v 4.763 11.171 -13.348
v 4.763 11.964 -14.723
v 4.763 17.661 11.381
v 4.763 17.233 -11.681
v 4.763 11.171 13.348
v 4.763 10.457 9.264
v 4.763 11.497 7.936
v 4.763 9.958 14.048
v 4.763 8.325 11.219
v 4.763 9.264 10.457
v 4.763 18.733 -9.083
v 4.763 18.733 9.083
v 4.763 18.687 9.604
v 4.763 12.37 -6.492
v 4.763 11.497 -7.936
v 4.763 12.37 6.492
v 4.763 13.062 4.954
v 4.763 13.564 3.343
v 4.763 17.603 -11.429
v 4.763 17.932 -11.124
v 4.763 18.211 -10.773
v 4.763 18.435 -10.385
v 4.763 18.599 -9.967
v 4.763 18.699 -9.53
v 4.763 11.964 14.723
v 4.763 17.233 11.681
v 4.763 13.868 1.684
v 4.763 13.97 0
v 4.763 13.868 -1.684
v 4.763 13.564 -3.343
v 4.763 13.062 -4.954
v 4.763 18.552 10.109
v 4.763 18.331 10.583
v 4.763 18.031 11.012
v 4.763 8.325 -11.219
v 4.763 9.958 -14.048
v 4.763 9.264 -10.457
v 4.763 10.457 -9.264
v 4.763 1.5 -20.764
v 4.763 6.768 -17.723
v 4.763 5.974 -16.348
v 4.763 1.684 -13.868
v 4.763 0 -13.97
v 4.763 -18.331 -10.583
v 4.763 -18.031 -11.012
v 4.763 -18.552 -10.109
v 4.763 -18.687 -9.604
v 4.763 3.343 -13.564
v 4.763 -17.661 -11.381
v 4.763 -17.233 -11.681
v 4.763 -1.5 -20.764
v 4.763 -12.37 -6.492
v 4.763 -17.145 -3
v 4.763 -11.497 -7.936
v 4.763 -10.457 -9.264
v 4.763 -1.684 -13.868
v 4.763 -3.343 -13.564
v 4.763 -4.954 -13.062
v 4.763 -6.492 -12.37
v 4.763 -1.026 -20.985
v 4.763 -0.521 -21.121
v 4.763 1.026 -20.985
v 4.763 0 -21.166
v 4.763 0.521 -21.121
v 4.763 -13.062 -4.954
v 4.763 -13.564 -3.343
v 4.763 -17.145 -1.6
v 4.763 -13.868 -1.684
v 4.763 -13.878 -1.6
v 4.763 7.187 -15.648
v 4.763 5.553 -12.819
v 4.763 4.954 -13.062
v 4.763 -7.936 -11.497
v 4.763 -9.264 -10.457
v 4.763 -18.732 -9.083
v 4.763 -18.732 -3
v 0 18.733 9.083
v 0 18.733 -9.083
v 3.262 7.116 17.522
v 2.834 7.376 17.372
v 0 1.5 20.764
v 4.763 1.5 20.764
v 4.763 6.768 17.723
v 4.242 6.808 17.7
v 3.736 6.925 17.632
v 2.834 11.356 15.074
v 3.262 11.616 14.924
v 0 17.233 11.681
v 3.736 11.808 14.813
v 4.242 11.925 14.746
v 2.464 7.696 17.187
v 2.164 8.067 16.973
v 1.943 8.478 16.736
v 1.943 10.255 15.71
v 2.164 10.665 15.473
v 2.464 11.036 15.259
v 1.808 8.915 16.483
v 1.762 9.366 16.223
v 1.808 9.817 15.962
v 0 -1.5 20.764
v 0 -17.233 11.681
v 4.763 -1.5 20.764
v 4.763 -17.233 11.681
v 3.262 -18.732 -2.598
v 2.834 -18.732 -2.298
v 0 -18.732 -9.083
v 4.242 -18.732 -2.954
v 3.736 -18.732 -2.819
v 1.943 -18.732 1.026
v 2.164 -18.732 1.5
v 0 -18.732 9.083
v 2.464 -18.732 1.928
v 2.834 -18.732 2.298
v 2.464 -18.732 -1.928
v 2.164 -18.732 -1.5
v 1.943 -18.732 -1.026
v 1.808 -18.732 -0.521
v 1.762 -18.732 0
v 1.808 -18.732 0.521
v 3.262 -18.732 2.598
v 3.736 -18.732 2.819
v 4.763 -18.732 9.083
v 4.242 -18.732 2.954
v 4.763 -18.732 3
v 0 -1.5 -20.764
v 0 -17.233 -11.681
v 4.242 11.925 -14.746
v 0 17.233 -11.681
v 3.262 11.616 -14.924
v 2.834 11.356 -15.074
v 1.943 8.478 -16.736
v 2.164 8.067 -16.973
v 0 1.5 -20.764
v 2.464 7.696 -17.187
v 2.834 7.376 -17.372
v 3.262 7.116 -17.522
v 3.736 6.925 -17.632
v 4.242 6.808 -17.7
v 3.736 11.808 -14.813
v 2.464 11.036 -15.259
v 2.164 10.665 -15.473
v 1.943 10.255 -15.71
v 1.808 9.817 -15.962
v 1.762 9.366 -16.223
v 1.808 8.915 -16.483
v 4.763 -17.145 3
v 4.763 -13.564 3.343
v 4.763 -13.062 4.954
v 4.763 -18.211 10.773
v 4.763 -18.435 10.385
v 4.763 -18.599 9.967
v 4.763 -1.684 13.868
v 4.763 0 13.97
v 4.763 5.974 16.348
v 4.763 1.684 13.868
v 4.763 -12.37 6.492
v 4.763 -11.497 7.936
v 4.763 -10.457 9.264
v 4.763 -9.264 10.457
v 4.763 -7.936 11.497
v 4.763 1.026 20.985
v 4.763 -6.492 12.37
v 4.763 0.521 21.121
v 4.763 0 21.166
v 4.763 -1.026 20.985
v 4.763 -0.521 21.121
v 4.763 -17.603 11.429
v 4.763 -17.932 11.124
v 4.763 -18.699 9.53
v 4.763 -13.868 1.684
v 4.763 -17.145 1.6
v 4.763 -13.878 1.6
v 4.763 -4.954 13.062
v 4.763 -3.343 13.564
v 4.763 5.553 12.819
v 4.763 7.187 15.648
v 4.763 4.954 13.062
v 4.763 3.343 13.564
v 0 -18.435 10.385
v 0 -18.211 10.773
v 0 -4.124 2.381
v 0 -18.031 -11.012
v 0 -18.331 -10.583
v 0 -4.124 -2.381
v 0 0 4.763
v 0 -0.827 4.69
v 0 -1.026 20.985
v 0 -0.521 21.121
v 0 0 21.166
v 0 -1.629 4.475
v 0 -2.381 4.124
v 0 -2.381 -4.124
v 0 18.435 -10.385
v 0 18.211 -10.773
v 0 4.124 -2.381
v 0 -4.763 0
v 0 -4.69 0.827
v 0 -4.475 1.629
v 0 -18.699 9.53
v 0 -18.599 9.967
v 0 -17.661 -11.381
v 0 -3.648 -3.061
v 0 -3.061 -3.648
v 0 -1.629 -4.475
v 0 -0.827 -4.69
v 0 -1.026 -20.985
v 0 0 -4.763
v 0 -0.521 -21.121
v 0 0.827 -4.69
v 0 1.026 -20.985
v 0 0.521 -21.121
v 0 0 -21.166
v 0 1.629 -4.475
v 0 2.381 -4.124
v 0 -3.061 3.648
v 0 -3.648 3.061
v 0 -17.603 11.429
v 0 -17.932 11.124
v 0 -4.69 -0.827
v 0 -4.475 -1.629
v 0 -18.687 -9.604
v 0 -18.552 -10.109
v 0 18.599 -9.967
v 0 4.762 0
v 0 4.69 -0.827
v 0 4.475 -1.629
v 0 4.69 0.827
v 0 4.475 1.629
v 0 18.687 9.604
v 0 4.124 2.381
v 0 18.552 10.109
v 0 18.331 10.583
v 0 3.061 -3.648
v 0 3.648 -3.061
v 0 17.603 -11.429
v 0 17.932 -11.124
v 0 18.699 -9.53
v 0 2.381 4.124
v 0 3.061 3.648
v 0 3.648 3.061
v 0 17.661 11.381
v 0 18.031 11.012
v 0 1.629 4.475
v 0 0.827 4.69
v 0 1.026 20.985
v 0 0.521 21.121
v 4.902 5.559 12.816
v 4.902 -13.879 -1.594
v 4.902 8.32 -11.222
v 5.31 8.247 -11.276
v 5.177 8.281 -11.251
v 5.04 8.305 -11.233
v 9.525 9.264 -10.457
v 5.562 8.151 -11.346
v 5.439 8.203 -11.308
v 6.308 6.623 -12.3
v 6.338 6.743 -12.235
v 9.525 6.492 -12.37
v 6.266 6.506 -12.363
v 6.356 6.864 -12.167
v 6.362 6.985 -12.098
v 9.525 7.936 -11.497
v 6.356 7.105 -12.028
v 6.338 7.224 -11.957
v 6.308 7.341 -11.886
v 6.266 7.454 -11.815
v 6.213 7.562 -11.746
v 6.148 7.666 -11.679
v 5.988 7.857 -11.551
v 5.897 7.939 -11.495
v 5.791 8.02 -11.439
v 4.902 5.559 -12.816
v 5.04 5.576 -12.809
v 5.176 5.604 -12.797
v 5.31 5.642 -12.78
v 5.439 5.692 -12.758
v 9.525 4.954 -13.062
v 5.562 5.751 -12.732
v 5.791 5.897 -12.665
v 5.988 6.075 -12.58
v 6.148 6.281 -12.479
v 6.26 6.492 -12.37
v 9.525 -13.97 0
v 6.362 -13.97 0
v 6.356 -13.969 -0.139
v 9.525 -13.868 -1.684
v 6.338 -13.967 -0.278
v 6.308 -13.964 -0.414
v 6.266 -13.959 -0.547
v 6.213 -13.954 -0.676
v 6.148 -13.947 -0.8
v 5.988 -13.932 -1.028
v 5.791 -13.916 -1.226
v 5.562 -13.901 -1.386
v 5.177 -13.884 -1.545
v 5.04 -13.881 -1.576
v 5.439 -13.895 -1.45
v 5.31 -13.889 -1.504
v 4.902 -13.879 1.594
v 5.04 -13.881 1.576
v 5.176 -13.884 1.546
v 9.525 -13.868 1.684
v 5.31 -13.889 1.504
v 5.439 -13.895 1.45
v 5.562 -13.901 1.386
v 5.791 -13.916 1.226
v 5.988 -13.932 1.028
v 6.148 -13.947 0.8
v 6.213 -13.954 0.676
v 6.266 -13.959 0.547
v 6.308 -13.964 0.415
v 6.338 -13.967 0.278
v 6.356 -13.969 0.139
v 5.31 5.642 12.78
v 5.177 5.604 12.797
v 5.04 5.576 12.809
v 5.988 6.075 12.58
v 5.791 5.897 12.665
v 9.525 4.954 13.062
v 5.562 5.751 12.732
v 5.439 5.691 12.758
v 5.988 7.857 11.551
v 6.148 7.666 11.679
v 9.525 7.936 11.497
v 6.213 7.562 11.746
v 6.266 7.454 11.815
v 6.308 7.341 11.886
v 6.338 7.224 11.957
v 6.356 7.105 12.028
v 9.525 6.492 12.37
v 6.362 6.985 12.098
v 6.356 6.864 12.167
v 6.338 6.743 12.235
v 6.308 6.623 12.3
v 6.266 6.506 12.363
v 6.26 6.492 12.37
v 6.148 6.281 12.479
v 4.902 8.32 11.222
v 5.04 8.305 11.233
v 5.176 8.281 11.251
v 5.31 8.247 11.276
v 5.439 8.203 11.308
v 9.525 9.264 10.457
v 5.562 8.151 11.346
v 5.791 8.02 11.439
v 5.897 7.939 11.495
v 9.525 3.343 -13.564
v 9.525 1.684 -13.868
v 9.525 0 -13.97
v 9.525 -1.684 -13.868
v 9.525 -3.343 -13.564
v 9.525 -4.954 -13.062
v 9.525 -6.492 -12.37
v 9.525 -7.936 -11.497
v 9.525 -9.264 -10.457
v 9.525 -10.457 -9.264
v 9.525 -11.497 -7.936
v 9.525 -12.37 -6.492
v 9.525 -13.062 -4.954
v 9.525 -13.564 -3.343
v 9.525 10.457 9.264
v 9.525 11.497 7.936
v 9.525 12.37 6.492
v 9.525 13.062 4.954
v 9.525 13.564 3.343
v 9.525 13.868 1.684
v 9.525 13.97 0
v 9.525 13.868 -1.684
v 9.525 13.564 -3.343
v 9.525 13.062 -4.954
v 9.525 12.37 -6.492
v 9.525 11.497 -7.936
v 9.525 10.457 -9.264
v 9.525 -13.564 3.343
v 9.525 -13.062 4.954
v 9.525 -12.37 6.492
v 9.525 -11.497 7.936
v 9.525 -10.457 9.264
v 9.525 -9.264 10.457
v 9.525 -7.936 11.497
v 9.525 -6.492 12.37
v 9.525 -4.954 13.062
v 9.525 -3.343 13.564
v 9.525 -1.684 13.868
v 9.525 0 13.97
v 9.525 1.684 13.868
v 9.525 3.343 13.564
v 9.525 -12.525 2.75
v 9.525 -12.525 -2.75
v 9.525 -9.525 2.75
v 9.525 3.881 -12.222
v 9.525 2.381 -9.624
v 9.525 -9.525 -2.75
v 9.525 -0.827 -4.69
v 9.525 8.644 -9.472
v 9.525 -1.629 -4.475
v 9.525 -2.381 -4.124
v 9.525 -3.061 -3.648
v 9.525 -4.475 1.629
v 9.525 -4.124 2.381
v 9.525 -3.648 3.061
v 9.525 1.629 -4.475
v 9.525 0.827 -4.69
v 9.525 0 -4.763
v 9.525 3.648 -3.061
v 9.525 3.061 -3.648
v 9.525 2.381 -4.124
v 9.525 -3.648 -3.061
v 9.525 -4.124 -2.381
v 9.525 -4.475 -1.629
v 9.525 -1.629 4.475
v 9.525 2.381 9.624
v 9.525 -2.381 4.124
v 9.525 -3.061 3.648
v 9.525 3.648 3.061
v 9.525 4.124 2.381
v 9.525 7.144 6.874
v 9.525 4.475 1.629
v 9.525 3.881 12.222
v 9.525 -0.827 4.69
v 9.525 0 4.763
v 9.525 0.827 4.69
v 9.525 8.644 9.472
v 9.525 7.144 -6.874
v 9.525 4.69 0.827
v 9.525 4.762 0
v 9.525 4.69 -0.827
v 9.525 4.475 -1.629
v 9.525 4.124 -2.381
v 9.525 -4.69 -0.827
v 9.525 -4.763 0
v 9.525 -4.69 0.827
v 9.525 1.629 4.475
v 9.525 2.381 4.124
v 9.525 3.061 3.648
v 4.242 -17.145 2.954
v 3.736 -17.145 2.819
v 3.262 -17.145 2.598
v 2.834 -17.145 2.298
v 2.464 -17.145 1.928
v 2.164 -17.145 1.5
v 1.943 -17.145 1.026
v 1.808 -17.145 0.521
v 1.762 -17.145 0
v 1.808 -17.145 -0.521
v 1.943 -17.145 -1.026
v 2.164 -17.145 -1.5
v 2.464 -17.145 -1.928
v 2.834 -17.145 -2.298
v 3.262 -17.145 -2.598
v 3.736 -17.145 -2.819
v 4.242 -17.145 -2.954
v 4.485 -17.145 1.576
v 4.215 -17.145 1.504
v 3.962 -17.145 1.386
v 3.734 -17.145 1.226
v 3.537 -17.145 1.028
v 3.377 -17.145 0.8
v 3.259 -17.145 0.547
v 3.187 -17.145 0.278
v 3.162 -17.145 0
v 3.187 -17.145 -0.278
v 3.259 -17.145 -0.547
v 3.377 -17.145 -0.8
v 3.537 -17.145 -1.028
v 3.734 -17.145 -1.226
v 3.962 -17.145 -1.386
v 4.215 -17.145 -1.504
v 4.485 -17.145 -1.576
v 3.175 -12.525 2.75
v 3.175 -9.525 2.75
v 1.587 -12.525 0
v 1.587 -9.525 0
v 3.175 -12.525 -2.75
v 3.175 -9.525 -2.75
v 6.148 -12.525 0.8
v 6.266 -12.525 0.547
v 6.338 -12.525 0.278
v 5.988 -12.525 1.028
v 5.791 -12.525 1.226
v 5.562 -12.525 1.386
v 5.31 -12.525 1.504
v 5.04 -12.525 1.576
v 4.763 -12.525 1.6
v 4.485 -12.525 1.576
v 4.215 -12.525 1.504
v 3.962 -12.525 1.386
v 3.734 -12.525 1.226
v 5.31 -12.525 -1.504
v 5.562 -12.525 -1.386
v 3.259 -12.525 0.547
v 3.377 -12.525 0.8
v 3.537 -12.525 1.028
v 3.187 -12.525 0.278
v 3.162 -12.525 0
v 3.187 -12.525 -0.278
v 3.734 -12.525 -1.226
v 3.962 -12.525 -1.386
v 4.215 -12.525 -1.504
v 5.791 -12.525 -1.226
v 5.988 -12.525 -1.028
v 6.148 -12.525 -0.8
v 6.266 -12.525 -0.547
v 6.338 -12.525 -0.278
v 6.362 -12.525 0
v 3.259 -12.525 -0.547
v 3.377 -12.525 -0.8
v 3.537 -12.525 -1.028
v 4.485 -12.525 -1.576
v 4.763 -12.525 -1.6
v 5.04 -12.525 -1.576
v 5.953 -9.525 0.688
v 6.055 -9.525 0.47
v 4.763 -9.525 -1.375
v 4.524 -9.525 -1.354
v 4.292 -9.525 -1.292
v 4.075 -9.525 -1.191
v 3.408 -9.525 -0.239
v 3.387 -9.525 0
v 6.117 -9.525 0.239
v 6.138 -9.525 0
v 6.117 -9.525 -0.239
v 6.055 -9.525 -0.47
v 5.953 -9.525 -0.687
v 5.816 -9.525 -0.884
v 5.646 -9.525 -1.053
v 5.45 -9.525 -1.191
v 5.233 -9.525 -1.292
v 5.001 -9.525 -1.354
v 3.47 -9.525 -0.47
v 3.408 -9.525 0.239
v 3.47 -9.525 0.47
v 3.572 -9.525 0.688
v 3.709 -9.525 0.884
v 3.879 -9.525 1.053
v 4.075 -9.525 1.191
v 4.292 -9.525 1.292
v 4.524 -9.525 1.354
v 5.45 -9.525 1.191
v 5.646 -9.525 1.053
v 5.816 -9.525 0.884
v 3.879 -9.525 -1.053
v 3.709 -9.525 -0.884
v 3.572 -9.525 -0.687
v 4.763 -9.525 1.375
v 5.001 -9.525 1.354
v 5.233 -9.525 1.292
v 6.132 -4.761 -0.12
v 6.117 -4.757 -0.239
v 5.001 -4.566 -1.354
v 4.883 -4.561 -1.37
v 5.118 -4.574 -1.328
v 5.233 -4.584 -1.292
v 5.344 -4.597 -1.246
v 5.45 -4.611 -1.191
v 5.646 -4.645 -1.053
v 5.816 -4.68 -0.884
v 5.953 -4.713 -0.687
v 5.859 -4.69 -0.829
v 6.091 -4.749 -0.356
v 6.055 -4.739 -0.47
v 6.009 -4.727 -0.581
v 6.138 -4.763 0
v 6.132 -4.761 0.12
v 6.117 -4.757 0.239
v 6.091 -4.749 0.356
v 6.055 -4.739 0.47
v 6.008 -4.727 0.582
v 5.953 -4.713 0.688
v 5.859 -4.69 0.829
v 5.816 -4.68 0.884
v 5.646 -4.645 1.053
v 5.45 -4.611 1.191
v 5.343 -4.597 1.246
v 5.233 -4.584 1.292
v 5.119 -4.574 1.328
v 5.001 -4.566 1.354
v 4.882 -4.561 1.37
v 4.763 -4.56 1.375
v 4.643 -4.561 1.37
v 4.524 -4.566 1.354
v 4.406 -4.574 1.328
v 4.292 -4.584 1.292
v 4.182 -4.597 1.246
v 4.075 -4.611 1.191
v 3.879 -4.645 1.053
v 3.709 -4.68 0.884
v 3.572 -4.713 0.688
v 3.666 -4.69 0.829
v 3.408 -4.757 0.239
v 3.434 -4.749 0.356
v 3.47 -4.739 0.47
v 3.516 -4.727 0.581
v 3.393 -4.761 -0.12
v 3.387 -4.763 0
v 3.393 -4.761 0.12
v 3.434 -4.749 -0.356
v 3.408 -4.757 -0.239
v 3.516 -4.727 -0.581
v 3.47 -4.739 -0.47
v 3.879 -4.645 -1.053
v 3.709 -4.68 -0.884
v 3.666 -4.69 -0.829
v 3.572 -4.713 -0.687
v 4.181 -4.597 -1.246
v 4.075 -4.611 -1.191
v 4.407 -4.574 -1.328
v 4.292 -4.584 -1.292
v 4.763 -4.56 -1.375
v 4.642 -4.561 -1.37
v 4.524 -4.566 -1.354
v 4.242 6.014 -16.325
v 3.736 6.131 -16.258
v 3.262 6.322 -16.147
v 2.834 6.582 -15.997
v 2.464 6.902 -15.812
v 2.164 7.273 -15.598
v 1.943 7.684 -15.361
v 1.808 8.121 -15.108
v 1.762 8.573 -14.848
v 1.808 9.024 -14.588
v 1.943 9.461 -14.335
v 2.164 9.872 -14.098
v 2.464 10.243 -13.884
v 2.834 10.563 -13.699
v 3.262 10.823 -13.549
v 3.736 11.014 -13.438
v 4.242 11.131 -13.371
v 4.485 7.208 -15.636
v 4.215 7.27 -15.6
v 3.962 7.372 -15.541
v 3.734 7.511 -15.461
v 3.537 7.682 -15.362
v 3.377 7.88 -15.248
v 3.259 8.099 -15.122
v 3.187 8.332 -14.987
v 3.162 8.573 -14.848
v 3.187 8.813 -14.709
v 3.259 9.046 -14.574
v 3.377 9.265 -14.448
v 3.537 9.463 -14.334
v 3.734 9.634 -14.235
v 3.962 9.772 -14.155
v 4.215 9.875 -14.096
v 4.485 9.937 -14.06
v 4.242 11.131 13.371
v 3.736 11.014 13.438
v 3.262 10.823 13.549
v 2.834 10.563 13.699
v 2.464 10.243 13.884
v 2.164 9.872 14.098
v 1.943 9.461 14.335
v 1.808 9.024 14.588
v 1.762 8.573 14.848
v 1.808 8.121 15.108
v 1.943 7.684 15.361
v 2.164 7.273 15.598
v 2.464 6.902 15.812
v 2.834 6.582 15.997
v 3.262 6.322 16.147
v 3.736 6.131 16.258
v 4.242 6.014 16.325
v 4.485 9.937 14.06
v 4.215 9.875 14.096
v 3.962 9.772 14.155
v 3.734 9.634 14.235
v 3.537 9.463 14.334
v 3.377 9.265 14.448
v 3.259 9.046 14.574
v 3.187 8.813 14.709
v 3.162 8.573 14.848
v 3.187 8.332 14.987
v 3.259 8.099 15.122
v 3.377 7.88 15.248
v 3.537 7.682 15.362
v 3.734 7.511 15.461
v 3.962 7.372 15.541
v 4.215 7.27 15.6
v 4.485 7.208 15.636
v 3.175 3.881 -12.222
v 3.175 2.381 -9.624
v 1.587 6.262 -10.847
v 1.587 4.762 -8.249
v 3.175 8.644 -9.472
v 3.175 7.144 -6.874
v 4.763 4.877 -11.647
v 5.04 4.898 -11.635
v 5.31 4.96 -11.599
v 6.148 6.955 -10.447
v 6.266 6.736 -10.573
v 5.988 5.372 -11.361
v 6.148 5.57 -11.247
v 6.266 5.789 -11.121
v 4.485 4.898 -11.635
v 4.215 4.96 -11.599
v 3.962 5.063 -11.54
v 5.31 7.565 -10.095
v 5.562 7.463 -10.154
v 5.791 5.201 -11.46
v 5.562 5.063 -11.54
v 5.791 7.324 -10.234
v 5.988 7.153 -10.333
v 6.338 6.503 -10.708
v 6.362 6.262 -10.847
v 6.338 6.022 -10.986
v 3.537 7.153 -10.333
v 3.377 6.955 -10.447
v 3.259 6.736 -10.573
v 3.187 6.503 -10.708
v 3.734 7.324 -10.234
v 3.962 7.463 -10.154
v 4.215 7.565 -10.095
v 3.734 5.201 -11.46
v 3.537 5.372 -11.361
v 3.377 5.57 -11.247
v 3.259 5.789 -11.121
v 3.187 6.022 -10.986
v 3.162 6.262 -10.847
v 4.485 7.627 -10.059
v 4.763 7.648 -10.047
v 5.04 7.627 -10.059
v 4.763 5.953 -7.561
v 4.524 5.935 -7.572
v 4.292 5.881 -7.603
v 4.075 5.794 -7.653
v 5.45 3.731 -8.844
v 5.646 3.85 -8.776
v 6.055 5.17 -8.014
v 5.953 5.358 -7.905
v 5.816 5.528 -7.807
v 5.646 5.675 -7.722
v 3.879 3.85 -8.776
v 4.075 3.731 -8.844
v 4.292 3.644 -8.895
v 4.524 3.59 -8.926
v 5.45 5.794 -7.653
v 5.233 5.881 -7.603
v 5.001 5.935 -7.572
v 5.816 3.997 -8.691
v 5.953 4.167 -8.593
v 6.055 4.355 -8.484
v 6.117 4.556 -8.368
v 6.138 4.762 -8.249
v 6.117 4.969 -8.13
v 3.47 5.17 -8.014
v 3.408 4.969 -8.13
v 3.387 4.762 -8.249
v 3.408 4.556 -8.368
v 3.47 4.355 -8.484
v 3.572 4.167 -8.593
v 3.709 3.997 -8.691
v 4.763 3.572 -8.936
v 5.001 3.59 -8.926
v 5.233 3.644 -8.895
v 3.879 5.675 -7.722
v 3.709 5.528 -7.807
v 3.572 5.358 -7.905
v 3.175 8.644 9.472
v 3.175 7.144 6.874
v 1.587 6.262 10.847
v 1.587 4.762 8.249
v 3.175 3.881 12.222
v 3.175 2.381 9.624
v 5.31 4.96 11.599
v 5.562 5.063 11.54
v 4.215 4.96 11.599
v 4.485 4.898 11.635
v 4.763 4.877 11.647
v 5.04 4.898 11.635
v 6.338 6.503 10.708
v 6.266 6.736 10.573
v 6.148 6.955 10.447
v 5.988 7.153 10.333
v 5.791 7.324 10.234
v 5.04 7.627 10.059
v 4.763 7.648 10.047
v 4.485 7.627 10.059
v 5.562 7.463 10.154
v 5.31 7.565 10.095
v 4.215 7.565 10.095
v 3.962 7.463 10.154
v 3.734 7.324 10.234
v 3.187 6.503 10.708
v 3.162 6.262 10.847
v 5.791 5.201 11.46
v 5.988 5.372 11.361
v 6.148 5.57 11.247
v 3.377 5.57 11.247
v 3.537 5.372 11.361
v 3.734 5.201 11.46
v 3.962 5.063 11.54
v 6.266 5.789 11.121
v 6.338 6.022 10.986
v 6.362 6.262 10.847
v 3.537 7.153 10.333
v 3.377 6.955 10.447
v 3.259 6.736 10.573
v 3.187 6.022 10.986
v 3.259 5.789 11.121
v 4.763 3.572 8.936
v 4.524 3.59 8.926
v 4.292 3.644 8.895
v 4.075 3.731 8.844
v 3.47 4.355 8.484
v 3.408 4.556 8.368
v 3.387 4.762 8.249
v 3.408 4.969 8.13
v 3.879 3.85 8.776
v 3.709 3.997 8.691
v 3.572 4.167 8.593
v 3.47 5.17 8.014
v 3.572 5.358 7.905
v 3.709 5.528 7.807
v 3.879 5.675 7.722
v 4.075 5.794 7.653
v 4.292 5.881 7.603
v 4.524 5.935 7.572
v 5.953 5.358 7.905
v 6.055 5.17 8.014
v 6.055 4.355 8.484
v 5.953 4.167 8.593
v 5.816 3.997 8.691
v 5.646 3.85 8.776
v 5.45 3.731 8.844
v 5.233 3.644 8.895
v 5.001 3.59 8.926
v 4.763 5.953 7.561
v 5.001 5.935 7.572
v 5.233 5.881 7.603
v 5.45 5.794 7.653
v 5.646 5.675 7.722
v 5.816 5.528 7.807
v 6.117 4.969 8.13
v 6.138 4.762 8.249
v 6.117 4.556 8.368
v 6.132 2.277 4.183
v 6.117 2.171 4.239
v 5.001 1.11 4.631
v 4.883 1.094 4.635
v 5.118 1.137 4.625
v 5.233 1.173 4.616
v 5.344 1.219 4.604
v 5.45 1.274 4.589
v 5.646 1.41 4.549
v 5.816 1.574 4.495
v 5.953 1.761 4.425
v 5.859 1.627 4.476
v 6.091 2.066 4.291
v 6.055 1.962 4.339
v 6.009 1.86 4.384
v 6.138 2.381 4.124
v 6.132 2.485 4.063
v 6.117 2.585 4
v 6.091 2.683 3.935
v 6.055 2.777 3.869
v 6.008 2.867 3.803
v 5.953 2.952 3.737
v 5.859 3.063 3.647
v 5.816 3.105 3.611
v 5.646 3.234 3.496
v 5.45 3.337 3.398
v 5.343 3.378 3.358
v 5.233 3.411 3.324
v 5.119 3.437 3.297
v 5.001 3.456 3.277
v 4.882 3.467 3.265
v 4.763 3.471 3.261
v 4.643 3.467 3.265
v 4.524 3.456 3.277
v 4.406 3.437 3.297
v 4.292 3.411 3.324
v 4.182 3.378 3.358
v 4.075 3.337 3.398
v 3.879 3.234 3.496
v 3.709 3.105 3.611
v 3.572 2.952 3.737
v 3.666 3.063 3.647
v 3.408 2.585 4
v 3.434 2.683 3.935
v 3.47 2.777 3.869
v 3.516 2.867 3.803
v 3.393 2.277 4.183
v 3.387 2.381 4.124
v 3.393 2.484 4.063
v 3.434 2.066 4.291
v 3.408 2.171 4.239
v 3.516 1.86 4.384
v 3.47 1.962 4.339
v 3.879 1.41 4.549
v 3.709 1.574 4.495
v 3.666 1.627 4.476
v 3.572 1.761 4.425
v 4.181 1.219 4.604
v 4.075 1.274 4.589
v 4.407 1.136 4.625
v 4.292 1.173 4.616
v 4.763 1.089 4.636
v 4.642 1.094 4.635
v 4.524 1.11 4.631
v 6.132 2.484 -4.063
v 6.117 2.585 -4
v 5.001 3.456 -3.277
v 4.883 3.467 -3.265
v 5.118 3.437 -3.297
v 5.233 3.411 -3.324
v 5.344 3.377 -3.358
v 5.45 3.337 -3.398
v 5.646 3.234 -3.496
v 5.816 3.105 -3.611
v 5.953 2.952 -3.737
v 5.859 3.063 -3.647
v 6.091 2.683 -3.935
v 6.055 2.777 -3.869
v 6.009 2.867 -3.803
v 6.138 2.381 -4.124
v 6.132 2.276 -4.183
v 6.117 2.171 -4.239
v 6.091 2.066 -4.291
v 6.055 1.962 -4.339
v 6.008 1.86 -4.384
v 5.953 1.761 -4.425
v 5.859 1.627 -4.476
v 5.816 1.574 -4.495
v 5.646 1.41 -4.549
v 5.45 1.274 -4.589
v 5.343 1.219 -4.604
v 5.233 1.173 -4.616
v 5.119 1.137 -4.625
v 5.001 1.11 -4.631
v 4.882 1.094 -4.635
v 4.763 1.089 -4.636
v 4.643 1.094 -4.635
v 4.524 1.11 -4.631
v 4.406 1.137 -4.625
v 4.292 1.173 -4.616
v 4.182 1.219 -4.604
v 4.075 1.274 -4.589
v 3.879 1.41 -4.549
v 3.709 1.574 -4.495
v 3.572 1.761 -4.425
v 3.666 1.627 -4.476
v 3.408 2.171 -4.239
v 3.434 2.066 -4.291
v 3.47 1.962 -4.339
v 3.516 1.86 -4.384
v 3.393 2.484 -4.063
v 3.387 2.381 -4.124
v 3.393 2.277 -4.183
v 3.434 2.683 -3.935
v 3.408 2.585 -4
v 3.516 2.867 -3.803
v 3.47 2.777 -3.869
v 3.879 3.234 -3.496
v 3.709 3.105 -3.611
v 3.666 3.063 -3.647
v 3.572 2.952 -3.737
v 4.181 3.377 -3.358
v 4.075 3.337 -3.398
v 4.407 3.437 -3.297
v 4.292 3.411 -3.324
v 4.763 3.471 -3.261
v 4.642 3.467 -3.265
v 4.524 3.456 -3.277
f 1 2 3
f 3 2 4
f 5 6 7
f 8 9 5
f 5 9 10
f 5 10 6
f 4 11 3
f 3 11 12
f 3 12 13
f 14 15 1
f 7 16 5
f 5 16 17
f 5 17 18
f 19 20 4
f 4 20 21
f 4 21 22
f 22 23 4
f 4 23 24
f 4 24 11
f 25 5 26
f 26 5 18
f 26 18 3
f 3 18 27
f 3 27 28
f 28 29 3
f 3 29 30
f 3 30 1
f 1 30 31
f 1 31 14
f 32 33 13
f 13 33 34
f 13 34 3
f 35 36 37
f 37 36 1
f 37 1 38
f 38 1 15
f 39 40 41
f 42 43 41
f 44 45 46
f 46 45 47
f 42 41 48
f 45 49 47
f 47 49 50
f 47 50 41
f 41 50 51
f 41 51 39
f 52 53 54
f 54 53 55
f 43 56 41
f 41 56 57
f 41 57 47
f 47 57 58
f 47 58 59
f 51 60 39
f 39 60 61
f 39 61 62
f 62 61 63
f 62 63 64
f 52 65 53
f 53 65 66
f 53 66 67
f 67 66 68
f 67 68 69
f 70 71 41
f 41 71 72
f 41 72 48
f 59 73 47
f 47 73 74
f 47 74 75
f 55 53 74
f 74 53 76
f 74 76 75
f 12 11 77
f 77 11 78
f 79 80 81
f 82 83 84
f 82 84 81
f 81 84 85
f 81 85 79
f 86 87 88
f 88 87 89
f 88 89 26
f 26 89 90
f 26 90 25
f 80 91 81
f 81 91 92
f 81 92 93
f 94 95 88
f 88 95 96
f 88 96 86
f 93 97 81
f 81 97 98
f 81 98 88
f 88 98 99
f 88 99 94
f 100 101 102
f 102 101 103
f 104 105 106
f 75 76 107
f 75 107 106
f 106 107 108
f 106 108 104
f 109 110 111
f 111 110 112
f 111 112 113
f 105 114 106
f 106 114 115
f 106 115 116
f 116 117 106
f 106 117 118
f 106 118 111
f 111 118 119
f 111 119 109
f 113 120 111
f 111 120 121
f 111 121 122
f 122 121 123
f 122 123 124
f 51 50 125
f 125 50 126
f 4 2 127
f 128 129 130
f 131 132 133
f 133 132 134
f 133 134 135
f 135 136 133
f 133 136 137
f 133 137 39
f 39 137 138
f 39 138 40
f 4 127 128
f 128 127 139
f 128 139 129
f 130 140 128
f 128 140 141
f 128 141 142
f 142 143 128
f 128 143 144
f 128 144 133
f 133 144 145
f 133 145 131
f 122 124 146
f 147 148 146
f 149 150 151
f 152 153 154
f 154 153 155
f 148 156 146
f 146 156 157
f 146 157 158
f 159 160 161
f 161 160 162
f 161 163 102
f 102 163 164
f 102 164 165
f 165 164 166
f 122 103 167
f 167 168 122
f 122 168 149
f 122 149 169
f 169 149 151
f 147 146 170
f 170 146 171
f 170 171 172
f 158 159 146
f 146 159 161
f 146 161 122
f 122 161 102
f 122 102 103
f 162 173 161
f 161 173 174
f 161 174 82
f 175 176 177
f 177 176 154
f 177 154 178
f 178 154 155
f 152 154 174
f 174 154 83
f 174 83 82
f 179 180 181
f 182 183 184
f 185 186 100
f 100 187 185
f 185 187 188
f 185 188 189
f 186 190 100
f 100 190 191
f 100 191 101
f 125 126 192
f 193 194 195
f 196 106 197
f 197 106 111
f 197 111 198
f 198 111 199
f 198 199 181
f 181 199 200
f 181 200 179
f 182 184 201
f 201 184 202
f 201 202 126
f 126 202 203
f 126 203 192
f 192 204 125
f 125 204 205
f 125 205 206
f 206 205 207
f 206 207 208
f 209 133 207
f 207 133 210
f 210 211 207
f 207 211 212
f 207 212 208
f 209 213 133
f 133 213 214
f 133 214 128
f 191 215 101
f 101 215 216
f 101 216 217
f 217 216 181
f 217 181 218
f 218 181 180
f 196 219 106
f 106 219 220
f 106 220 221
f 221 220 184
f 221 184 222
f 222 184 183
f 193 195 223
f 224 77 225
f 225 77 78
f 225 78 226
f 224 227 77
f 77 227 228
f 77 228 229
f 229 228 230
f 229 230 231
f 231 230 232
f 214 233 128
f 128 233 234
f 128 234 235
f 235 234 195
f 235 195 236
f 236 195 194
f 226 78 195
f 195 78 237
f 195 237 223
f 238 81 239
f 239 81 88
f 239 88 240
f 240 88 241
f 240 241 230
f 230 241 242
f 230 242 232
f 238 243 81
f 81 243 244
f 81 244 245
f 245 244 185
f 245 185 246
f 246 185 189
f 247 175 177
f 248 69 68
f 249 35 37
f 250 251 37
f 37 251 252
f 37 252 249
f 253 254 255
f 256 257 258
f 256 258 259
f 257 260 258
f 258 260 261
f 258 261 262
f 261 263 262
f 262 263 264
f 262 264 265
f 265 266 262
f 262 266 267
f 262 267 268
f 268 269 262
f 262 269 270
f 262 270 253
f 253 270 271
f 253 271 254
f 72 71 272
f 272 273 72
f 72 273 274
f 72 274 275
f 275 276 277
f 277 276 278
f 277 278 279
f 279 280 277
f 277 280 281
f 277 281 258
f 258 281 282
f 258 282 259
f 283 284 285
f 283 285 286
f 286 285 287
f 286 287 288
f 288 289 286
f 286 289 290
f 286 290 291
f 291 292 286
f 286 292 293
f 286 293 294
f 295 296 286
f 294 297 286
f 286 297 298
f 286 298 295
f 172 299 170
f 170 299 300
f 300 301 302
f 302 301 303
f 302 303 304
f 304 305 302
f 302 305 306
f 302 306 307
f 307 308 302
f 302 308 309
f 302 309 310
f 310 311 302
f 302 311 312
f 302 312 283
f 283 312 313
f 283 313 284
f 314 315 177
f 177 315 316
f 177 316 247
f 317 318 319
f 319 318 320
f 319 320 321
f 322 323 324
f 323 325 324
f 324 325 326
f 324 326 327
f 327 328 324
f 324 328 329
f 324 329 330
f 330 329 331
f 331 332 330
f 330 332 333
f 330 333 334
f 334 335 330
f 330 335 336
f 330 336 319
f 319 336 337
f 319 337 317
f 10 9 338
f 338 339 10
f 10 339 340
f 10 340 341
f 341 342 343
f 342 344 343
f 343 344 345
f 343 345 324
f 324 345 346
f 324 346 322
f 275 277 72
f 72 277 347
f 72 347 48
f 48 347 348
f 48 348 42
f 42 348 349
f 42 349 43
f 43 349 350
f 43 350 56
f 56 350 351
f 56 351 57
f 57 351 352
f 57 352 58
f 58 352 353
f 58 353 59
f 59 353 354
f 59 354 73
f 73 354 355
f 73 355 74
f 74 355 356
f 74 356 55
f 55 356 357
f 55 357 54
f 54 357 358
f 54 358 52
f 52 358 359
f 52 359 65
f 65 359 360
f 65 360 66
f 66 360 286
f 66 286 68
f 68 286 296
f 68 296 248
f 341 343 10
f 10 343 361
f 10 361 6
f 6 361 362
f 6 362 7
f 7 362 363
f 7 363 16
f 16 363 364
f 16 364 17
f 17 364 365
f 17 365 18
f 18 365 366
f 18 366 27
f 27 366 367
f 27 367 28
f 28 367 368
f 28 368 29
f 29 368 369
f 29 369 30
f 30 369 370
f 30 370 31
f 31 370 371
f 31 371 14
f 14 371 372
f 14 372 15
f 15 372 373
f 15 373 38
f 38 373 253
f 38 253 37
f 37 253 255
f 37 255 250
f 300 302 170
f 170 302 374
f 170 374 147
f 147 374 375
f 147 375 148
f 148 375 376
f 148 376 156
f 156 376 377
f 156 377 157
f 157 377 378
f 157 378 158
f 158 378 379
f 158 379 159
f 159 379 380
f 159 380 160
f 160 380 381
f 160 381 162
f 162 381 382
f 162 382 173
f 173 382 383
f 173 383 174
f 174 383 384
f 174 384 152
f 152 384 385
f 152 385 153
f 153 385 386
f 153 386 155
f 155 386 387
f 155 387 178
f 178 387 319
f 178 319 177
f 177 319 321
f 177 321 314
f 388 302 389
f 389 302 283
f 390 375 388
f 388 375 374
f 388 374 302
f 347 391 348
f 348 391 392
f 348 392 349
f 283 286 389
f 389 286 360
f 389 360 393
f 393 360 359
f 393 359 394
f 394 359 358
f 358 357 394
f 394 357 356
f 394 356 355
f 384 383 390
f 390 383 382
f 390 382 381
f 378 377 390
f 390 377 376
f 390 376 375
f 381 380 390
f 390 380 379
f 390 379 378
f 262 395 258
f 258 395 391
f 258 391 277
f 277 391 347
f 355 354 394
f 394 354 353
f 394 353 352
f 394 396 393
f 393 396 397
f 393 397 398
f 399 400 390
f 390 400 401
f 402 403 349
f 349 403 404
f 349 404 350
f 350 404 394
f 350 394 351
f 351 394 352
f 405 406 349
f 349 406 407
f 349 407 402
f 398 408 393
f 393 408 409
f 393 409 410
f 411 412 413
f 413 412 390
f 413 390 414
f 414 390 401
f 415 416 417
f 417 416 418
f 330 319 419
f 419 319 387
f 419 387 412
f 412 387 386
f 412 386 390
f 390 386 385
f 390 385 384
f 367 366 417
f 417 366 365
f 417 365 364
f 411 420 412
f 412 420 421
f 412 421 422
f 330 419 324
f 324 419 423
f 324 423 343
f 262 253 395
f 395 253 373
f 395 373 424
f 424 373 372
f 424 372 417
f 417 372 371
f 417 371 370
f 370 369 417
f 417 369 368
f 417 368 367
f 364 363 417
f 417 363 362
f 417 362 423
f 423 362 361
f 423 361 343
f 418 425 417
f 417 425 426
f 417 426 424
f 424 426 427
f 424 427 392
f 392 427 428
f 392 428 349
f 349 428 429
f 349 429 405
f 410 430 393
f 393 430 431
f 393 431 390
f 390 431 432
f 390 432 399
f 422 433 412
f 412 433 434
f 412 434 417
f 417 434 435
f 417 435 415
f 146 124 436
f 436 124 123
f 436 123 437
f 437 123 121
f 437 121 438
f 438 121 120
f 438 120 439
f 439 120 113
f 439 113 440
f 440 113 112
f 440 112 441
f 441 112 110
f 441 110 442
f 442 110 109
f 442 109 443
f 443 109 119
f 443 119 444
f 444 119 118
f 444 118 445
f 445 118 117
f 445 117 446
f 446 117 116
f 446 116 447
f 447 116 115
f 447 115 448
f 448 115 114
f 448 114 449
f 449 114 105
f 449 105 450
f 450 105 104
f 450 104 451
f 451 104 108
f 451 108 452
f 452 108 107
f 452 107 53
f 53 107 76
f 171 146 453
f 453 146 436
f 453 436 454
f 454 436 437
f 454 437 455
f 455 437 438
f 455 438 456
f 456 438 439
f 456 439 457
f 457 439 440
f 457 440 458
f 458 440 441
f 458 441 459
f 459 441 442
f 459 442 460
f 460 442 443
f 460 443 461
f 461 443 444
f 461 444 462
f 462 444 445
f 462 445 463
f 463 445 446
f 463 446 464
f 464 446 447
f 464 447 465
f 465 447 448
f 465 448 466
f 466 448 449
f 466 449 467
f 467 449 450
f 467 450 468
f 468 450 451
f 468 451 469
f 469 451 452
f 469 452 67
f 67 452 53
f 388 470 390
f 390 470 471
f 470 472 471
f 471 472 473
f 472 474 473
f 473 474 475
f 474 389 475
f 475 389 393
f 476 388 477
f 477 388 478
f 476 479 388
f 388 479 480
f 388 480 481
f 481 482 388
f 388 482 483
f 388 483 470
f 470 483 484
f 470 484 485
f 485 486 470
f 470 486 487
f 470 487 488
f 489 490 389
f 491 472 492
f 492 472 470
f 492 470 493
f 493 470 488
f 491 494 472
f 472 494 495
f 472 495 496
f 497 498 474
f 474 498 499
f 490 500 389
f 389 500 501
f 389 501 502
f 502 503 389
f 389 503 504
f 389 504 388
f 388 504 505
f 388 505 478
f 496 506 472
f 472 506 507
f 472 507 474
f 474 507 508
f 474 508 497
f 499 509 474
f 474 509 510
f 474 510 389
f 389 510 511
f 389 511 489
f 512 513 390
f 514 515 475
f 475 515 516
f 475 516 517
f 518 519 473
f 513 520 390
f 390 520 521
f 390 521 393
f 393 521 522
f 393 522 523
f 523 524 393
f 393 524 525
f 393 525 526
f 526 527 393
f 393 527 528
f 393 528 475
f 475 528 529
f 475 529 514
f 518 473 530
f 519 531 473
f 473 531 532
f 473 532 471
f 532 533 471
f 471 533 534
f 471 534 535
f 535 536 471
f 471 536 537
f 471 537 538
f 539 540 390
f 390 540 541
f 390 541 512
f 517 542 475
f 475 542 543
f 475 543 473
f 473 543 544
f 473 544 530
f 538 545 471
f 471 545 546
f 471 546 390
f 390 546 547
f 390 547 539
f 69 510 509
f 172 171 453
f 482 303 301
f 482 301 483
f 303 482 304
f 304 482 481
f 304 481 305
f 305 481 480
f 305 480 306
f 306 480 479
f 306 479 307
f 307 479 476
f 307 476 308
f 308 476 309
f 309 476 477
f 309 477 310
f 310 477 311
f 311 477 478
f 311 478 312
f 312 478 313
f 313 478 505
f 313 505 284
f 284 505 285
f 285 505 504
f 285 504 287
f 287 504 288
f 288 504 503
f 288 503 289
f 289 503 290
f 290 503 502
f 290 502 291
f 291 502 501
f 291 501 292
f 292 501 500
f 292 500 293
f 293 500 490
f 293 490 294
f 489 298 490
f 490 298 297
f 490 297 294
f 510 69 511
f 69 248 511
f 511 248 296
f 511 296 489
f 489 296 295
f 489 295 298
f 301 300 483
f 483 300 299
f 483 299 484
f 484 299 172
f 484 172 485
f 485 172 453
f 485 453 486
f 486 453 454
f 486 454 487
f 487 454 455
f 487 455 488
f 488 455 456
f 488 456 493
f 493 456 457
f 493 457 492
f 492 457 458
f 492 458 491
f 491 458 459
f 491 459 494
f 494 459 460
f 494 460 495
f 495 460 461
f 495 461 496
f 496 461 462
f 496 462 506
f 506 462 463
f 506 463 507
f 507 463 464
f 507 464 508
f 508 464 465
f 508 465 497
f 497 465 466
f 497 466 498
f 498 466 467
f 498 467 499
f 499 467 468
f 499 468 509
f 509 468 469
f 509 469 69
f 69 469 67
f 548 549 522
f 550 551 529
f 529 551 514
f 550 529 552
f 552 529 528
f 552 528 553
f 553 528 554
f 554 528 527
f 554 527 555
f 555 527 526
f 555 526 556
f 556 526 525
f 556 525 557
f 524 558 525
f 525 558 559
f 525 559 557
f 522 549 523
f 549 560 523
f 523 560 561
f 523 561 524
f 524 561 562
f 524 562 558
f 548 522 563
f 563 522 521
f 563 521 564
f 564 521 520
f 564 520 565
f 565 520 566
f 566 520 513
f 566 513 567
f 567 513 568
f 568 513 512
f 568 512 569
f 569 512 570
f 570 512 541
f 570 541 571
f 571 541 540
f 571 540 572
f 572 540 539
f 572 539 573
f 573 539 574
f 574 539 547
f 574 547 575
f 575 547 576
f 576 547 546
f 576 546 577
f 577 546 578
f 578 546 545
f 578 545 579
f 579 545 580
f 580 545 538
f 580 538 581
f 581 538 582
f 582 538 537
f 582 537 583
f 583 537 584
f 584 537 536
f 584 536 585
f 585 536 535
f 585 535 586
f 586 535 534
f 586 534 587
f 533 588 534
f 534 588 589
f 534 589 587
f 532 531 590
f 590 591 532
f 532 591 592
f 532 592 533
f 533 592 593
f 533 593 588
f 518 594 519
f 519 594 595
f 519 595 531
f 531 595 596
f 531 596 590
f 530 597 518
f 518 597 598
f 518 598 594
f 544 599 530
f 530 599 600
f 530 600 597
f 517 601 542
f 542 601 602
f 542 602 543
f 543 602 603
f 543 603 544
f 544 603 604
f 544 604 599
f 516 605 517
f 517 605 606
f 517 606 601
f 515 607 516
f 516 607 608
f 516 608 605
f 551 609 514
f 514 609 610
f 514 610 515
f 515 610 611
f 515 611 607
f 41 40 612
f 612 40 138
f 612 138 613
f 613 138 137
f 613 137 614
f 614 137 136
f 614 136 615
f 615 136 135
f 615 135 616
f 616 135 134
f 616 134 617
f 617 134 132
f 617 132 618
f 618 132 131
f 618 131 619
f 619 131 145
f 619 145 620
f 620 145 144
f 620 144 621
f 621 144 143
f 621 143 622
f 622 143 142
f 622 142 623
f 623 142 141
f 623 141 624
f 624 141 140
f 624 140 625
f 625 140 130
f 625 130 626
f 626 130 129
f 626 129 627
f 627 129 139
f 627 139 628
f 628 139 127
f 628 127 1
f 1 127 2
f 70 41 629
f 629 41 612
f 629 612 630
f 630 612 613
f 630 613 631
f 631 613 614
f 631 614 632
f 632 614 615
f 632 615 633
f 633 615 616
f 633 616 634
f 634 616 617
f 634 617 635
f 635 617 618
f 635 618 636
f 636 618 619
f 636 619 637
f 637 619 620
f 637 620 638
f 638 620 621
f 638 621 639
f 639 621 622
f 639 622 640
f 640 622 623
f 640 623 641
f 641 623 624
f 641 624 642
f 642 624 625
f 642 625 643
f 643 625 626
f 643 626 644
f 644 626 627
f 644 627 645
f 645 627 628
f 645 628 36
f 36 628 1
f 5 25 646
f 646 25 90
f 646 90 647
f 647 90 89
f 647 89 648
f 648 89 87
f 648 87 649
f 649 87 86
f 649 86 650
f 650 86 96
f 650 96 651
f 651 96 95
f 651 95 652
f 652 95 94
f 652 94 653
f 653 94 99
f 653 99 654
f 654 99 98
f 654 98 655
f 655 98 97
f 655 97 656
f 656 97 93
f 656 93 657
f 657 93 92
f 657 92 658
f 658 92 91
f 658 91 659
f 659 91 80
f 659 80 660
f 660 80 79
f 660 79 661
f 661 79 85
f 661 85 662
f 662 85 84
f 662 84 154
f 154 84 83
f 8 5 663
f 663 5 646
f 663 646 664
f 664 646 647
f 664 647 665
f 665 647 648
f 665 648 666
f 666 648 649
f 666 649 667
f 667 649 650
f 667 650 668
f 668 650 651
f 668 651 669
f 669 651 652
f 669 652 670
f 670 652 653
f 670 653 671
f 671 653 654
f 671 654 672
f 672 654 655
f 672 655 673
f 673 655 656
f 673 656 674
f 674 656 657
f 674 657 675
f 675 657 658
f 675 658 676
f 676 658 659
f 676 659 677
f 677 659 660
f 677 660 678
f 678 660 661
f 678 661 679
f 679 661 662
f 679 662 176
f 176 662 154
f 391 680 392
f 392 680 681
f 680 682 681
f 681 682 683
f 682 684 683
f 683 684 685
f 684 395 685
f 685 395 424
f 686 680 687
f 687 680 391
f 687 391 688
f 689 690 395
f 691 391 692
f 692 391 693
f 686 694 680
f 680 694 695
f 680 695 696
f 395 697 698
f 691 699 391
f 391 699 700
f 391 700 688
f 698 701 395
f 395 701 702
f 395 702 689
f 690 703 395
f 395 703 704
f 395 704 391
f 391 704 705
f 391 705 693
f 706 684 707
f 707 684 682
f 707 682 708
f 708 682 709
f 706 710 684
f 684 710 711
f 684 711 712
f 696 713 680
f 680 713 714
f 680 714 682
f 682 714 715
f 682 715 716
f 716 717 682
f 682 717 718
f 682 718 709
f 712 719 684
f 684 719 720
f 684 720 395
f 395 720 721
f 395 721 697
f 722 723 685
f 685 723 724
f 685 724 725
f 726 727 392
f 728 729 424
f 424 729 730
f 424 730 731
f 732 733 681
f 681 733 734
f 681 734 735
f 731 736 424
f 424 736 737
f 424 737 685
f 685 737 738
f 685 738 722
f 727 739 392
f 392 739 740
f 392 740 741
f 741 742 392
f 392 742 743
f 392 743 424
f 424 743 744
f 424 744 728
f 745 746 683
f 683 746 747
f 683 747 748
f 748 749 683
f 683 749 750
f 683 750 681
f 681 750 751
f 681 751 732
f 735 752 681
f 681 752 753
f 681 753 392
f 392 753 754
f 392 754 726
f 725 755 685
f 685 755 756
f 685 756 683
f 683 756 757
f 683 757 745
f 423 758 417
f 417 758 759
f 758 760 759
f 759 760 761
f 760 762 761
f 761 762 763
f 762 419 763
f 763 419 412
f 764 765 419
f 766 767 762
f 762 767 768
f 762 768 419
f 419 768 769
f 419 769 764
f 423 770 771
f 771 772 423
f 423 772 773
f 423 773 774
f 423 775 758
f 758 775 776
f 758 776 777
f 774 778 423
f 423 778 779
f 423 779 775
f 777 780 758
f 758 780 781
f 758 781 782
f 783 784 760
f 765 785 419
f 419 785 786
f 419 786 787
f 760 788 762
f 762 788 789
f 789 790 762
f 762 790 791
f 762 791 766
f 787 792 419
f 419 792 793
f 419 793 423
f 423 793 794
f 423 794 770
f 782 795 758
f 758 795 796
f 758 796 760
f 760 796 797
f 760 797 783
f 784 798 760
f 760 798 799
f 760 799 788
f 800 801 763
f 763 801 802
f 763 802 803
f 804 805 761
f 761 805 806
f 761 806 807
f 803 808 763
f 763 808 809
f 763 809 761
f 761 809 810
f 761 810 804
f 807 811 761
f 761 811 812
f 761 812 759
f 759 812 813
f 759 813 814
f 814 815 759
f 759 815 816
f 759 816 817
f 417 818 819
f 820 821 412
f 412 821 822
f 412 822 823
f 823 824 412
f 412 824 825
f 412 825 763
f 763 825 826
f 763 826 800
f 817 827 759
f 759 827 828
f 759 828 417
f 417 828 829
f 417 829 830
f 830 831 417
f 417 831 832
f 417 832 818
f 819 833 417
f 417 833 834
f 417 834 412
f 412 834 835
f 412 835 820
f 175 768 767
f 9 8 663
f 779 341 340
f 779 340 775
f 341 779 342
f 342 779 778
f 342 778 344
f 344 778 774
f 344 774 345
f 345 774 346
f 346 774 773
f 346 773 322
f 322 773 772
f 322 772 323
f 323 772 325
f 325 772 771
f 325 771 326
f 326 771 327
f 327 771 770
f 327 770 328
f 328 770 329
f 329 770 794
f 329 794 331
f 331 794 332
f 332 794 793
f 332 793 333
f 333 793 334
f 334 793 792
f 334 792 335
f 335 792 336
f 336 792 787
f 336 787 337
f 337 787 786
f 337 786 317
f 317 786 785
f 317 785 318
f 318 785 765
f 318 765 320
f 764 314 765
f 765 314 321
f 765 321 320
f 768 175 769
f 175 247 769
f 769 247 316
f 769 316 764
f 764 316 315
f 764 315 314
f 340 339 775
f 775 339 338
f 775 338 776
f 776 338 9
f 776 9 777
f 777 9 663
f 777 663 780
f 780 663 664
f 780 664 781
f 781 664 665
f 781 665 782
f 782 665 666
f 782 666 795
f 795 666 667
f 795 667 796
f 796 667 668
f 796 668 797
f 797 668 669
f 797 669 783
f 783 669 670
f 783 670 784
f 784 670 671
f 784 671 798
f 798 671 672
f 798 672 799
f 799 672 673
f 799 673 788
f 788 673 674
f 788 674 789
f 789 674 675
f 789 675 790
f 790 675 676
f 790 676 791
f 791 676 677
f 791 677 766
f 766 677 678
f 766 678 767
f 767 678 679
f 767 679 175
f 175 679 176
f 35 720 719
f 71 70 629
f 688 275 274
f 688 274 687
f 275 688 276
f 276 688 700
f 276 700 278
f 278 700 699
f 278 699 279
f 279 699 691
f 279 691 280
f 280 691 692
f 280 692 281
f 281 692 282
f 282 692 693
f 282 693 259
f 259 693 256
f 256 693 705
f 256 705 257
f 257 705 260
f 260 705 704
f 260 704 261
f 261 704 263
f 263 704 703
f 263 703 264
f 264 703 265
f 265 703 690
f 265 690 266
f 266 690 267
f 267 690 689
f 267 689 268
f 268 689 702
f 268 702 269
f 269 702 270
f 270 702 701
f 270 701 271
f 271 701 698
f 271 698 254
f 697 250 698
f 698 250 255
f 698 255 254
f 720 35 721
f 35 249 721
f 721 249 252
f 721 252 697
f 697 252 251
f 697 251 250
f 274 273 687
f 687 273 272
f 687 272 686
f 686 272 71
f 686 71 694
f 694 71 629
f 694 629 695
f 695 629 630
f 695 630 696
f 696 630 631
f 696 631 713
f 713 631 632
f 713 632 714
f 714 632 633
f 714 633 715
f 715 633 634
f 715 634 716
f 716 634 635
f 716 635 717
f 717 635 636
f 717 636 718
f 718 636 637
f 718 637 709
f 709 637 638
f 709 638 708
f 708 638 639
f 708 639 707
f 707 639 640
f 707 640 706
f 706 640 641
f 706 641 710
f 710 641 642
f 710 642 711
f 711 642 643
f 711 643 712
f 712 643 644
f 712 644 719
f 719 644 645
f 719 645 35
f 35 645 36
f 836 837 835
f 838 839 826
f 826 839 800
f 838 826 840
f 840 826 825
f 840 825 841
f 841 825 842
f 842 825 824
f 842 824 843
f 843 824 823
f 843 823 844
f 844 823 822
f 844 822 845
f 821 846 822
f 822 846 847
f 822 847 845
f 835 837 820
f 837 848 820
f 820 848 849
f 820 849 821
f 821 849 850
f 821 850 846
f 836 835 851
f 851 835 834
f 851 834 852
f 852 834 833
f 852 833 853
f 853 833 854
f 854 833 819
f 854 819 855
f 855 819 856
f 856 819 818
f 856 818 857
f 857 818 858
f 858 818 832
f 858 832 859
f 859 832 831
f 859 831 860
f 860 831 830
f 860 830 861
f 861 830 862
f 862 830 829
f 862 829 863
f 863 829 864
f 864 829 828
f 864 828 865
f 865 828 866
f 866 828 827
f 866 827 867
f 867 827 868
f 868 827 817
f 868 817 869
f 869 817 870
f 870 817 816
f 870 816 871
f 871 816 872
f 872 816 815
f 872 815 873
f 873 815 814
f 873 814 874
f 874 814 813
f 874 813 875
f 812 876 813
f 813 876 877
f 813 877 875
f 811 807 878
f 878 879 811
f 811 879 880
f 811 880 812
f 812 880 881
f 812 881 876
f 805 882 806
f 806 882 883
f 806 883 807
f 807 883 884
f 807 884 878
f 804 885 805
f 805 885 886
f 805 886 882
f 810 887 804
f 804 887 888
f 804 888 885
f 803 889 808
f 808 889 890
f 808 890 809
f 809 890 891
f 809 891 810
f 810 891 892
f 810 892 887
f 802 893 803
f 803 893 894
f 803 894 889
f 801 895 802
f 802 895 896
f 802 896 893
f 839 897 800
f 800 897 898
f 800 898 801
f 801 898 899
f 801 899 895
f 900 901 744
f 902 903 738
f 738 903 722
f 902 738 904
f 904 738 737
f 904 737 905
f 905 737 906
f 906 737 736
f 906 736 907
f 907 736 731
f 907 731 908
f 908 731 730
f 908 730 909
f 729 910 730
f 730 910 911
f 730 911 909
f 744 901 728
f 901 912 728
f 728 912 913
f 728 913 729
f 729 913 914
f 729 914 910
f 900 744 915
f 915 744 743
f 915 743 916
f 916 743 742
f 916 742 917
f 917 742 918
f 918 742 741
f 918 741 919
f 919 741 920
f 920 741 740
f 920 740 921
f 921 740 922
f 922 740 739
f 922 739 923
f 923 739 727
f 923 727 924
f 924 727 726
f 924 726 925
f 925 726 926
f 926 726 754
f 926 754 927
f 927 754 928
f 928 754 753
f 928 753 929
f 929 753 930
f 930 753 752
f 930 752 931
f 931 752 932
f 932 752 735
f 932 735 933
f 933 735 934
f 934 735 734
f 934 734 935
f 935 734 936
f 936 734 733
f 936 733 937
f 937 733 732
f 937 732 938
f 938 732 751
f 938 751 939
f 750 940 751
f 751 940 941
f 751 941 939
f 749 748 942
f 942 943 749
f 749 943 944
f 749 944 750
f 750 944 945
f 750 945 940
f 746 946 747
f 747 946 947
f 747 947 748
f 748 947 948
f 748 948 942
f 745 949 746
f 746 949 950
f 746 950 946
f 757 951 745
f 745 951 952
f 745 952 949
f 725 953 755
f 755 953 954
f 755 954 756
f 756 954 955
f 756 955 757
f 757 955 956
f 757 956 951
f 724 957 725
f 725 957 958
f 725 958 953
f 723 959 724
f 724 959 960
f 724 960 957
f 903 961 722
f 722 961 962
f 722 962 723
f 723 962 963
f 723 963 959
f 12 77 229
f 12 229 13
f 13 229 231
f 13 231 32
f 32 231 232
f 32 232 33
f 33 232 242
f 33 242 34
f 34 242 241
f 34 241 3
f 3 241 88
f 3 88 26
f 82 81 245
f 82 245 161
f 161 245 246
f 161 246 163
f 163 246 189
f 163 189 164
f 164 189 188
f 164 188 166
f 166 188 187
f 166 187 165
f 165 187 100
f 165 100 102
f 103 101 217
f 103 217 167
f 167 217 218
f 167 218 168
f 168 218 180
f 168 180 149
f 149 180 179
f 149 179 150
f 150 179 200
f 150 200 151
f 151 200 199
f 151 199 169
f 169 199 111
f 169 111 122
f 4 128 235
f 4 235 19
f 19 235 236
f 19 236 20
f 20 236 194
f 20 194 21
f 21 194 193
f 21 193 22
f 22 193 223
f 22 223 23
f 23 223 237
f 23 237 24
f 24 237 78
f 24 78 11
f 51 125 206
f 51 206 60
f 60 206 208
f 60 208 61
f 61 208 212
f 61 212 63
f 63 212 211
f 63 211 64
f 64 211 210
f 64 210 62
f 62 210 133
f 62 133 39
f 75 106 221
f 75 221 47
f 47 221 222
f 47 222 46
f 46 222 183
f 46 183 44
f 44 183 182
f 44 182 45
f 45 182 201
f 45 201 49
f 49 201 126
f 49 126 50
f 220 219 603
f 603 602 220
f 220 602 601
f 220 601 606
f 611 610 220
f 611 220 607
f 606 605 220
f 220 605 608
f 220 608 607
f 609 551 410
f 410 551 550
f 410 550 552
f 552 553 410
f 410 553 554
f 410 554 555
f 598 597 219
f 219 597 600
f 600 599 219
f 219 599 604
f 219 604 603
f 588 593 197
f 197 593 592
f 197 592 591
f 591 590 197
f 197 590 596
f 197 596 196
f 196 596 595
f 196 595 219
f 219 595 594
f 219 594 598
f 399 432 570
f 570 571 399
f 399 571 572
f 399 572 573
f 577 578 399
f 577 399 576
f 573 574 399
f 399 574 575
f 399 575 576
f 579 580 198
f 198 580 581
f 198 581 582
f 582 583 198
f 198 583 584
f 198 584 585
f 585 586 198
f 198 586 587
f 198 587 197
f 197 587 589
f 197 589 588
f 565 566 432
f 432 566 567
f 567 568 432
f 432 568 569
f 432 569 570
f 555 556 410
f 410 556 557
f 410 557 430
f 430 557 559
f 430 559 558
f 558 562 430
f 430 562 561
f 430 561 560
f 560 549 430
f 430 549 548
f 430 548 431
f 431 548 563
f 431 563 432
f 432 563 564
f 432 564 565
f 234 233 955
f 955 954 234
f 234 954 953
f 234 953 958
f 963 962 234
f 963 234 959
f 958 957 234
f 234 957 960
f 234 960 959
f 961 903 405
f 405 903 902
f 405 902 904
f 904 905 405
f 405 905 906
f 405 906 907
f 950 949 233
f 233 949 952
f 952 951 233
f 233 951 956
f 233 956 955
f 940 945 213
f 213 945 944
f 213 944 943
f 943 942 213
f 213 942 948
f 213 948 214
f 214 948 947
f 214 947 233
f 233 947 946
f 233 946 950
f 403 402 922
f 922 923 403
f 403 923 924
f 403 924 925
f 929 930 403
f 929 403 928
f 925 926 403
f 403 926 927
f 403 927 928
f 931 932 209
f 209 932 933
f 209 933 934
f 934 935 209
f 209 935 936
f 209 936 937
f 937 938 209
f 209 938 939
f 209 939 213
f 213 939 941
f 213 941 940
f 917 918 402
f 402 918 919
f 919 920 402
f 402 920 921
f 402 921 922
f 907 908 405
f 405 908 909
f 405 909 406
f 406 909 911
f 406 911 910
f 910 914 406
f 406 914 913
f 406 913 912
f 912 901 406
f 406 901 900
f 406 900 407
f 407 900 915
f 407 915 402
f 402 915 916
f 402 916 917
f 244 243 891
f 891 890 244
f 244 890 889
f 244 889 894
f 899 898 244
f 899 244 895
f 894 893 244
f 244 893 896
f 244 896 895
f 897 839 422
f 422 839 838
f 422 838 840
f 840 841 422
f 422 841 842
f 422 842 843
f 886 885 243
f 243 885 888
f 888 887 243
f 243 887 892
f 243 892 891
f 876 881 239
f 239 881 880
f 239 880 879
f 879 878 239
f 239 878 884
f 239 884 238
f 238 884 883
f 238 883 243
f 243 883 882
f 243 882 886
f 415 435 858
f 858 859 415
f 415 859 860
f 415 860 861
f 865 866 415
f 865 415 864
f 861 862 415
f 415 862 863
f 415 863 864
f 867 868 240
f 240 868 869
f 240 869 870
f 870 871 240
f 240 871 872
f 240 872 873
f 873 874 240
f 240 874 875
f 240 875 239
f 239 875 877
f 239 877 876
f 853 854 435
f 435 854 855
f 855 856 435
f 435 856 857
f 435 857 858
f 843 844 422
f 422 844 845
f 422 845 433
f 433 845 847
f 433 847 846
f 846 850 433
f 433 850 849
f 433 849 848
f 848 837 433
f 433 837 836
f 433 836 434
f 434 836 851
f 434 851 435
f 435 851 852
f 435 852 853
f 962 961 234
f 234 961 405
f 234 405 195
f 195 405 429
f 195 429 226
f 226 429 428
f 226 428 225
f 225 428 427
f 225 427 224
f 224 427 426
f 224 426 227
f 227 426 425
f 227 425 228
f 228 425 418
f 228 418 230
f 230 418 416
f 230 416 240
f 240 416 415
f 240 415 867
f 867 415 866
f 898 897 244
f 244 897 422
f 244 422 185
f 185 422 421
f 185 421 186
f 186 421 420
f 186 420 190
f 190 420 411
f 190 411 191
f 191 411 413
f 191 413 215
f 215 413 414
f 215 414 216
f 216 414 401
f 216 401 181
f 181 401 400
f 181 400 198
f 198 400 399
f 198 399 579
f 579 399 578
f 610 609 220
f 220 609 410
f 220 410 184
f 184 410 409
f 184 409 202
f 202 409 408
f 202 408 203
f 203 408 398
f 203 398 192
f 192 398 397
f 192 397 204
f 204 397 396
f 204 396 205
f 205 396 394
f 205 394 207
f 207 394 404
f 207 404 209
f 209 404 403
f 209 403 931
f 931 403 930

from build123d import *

# Parameters (mm, degrees)
BOSS_EXTRUDE1_DEPTH = 4.7625
SKETCH2_R           = 13.97
BOSS_EXTRUDE2_DEPTH = 4.7625
SKETCH3_R           = 3
CUT_EXTRUDE1_DEPTH  = 1.5875
CUT_EXTRUDE4_START  = 9.525
CUT_EXTRUDE4_DEPTH  = 3
CUT_EXTRUDE2_REACH  = 44.963
SKETCH4_R           = 1.6
SKETCH5_R           = 1.375
CUT_EXTRUDE3_DEPTH  = 12.7
CIRPATTERN3_COUNT   = 3
FILLET1_R           = 3
SKETCH7_R           = 4.7625
F_3_8IN_ROUND_DEPTH = 30.826926541


with BuildPart() as part:
    # Sketch1 → Boss-Extrude1 (new body)
    with BuildSketch(Plane(origin=(0, 0, 0), x_dir=(0, 0, -1), z_dir=(1, 0, 0))):
        Polygon((-10.815213918, 18.7325), (-21.630427835, 0), (-10.815213918, -18.7325), (10.815213918, -18.7325), (21.630427835, 0), (10.815213918, 18.7325), align=None)
    extrude(amount=BOSS_EXTRUDE1_DEPTH)

    # Sketch2 → Boss-Extrude2 (add)
    with BuildSketch(Plane(origin=(4.7625, 0, 0), x_dir=(0, 0, -1), z_dir=(1, 0, 0))):
        with Locations(Location((0, 0, 0), (0, 0, 180))):
            Circle(SKETCH2_R)
    extrude(amount=BOSS_EXTRUDE2_DEPTH)

    # Sketch3 → Cut-Extrude1 (cut)
    with BuildSketch(Plane.XZ.offset(18.7325)):
        with Locations((4.7625, 0)):
            Circle(SKETCH3_R)
    cut_extrude1 = extrude(amount=-CUT_EXTRUDE1_DEPTH, mode=Mode.SUBTRACT)

    # Sketch6 → Cut-Extrude4 (cut)
    with BuildSketch(Plane(origin=(0, 0, 0), x_dir=(-1, 0, 0), z_dir=(0, -1, 0)).offset(CUT_EXTRUDE4_START)):
        Polygon((-6.35021324, 2.75), (-9.525, 2.75), (-9.525, -2.75), (-6.35021324, -2.75), (-3.17478676, -2.75), (-1.587073519, 0), (-3.17478676, 2.75), align=None)
    cut_extrude4 = extrude(amount=CUT_EXTRUDE4_DEPTH, mode=Mode.SUBTRACT)

    # Cut-Extrude2: up to this face of the body (flat: up to its plane)
    cut_extrude2_end = Plane(part.part.faces().sort_by_distance((5.938262705, -9.525, 0))[0])
    # Sketch4 → Cut-Extrude2 (cut, up to the picked face)
    with BuildSketch(Plane.XZ.offset(17.145), mode=Mode.PRIVATE) as cut_extrude2_sk1:
        with Locations(Location((4.7625, 0, 0), (0, 0, 270))):
            Circle(SKETCH4_R)
    cut_extrude2_tool1 = split(extrude(cut_extrude2_sk1.sketch, amount=-CUT_EXTRUDE2_REACH, mode=Mode.PRIVATE), bisect_by=cut_extrude2_end, keep=Keep.BOTH, mode=Mode.PRIVATE)
    cut_extrude2 = cut_extrude2_tool1.solids().sort_by(Axis((4.7625, -17.145, 0), (0, 1, 0)))[0]
    add(cut_extrude2, mode=Mode.SUBTRACT)

    # Sketch5 → Cut-Extrude3 (cut)
    with BuildSketch(Plane.XZ.offset(17.145)):
        with Locations(Location((4.7625, 0, 0), (0, 0, 270))):
            Circle(SKETCH5_R)
    cut_extrude3 = extrude(amount=-CUT_EXTRUDE3_DEPTH, mode=Mode.SUBTRACT)

    # CirPattern3: Cut-Extrude1, Cut-Extrude4, Cut-Extrude2, Cut-Extrude3 ×3 about axis
    cirpattern3_axis = Axis((0, 0, 0), (1, 0, 0))
    add([cut_extrude1.rotate(cirpattern3_axis, i * 360 / CIRPATTERN3_COUNT) for i in range(1, CIRPATTERN3_COUNT)], mode=Mode.SUBTRACT)
    add([cut_extrude4.rotate(cirpattern3_axis, i * 360 / CIRPATTERN3_COUNT) for i in range(1, CIRPATTERN3_COUNT)], mode=Mode.SUBTRACT)
    add([cut_extrude2.rotate(cirpattern3_axis, i * 360 / CIRPATTERN3_COUNT) for i in range(1, CIRPATTERN3_COUNT)], mode=Mode.SUBTRACT)
    add([cut_extrude3.rotate(cirpattern3_axis, i * 360 / CIRPATTERN3_COUNT) for i in range(1, CIRPATTERN3_COUNT)], mode=Mode.SUBTRACT)

    # Fillet1
    fillet1_edges = [part.edges().sort_by_distance(p)[0] for p in [
        (2.38125, 18.7325, -10.815213918),
        (2.38125, 0, -21.630427835),
        (2.38125, -18.7325, -10.815213918),
        (2.38125, -18.7325, 10.815213918),
        (2.38125, 0, 21.630427835),
        (2.38125, 18.7325, 10.815213918),
    ]]
    fillet(fillet1_edges, radius=FILLET1_R)

    # Sketch7 → 3/8in Round (cut, through all)
    with BuildSketch(Plane(origin=(9.525, 0, 0), x_dir=(0, 0, -1), z_dir=(1, 0, 0))):
        Circle(SKETCH7_R)
    extrude(amount=-F_3_8IN_ROUND_DEPTH, mode=Mode.SUBTRACT)


solid = part.part
